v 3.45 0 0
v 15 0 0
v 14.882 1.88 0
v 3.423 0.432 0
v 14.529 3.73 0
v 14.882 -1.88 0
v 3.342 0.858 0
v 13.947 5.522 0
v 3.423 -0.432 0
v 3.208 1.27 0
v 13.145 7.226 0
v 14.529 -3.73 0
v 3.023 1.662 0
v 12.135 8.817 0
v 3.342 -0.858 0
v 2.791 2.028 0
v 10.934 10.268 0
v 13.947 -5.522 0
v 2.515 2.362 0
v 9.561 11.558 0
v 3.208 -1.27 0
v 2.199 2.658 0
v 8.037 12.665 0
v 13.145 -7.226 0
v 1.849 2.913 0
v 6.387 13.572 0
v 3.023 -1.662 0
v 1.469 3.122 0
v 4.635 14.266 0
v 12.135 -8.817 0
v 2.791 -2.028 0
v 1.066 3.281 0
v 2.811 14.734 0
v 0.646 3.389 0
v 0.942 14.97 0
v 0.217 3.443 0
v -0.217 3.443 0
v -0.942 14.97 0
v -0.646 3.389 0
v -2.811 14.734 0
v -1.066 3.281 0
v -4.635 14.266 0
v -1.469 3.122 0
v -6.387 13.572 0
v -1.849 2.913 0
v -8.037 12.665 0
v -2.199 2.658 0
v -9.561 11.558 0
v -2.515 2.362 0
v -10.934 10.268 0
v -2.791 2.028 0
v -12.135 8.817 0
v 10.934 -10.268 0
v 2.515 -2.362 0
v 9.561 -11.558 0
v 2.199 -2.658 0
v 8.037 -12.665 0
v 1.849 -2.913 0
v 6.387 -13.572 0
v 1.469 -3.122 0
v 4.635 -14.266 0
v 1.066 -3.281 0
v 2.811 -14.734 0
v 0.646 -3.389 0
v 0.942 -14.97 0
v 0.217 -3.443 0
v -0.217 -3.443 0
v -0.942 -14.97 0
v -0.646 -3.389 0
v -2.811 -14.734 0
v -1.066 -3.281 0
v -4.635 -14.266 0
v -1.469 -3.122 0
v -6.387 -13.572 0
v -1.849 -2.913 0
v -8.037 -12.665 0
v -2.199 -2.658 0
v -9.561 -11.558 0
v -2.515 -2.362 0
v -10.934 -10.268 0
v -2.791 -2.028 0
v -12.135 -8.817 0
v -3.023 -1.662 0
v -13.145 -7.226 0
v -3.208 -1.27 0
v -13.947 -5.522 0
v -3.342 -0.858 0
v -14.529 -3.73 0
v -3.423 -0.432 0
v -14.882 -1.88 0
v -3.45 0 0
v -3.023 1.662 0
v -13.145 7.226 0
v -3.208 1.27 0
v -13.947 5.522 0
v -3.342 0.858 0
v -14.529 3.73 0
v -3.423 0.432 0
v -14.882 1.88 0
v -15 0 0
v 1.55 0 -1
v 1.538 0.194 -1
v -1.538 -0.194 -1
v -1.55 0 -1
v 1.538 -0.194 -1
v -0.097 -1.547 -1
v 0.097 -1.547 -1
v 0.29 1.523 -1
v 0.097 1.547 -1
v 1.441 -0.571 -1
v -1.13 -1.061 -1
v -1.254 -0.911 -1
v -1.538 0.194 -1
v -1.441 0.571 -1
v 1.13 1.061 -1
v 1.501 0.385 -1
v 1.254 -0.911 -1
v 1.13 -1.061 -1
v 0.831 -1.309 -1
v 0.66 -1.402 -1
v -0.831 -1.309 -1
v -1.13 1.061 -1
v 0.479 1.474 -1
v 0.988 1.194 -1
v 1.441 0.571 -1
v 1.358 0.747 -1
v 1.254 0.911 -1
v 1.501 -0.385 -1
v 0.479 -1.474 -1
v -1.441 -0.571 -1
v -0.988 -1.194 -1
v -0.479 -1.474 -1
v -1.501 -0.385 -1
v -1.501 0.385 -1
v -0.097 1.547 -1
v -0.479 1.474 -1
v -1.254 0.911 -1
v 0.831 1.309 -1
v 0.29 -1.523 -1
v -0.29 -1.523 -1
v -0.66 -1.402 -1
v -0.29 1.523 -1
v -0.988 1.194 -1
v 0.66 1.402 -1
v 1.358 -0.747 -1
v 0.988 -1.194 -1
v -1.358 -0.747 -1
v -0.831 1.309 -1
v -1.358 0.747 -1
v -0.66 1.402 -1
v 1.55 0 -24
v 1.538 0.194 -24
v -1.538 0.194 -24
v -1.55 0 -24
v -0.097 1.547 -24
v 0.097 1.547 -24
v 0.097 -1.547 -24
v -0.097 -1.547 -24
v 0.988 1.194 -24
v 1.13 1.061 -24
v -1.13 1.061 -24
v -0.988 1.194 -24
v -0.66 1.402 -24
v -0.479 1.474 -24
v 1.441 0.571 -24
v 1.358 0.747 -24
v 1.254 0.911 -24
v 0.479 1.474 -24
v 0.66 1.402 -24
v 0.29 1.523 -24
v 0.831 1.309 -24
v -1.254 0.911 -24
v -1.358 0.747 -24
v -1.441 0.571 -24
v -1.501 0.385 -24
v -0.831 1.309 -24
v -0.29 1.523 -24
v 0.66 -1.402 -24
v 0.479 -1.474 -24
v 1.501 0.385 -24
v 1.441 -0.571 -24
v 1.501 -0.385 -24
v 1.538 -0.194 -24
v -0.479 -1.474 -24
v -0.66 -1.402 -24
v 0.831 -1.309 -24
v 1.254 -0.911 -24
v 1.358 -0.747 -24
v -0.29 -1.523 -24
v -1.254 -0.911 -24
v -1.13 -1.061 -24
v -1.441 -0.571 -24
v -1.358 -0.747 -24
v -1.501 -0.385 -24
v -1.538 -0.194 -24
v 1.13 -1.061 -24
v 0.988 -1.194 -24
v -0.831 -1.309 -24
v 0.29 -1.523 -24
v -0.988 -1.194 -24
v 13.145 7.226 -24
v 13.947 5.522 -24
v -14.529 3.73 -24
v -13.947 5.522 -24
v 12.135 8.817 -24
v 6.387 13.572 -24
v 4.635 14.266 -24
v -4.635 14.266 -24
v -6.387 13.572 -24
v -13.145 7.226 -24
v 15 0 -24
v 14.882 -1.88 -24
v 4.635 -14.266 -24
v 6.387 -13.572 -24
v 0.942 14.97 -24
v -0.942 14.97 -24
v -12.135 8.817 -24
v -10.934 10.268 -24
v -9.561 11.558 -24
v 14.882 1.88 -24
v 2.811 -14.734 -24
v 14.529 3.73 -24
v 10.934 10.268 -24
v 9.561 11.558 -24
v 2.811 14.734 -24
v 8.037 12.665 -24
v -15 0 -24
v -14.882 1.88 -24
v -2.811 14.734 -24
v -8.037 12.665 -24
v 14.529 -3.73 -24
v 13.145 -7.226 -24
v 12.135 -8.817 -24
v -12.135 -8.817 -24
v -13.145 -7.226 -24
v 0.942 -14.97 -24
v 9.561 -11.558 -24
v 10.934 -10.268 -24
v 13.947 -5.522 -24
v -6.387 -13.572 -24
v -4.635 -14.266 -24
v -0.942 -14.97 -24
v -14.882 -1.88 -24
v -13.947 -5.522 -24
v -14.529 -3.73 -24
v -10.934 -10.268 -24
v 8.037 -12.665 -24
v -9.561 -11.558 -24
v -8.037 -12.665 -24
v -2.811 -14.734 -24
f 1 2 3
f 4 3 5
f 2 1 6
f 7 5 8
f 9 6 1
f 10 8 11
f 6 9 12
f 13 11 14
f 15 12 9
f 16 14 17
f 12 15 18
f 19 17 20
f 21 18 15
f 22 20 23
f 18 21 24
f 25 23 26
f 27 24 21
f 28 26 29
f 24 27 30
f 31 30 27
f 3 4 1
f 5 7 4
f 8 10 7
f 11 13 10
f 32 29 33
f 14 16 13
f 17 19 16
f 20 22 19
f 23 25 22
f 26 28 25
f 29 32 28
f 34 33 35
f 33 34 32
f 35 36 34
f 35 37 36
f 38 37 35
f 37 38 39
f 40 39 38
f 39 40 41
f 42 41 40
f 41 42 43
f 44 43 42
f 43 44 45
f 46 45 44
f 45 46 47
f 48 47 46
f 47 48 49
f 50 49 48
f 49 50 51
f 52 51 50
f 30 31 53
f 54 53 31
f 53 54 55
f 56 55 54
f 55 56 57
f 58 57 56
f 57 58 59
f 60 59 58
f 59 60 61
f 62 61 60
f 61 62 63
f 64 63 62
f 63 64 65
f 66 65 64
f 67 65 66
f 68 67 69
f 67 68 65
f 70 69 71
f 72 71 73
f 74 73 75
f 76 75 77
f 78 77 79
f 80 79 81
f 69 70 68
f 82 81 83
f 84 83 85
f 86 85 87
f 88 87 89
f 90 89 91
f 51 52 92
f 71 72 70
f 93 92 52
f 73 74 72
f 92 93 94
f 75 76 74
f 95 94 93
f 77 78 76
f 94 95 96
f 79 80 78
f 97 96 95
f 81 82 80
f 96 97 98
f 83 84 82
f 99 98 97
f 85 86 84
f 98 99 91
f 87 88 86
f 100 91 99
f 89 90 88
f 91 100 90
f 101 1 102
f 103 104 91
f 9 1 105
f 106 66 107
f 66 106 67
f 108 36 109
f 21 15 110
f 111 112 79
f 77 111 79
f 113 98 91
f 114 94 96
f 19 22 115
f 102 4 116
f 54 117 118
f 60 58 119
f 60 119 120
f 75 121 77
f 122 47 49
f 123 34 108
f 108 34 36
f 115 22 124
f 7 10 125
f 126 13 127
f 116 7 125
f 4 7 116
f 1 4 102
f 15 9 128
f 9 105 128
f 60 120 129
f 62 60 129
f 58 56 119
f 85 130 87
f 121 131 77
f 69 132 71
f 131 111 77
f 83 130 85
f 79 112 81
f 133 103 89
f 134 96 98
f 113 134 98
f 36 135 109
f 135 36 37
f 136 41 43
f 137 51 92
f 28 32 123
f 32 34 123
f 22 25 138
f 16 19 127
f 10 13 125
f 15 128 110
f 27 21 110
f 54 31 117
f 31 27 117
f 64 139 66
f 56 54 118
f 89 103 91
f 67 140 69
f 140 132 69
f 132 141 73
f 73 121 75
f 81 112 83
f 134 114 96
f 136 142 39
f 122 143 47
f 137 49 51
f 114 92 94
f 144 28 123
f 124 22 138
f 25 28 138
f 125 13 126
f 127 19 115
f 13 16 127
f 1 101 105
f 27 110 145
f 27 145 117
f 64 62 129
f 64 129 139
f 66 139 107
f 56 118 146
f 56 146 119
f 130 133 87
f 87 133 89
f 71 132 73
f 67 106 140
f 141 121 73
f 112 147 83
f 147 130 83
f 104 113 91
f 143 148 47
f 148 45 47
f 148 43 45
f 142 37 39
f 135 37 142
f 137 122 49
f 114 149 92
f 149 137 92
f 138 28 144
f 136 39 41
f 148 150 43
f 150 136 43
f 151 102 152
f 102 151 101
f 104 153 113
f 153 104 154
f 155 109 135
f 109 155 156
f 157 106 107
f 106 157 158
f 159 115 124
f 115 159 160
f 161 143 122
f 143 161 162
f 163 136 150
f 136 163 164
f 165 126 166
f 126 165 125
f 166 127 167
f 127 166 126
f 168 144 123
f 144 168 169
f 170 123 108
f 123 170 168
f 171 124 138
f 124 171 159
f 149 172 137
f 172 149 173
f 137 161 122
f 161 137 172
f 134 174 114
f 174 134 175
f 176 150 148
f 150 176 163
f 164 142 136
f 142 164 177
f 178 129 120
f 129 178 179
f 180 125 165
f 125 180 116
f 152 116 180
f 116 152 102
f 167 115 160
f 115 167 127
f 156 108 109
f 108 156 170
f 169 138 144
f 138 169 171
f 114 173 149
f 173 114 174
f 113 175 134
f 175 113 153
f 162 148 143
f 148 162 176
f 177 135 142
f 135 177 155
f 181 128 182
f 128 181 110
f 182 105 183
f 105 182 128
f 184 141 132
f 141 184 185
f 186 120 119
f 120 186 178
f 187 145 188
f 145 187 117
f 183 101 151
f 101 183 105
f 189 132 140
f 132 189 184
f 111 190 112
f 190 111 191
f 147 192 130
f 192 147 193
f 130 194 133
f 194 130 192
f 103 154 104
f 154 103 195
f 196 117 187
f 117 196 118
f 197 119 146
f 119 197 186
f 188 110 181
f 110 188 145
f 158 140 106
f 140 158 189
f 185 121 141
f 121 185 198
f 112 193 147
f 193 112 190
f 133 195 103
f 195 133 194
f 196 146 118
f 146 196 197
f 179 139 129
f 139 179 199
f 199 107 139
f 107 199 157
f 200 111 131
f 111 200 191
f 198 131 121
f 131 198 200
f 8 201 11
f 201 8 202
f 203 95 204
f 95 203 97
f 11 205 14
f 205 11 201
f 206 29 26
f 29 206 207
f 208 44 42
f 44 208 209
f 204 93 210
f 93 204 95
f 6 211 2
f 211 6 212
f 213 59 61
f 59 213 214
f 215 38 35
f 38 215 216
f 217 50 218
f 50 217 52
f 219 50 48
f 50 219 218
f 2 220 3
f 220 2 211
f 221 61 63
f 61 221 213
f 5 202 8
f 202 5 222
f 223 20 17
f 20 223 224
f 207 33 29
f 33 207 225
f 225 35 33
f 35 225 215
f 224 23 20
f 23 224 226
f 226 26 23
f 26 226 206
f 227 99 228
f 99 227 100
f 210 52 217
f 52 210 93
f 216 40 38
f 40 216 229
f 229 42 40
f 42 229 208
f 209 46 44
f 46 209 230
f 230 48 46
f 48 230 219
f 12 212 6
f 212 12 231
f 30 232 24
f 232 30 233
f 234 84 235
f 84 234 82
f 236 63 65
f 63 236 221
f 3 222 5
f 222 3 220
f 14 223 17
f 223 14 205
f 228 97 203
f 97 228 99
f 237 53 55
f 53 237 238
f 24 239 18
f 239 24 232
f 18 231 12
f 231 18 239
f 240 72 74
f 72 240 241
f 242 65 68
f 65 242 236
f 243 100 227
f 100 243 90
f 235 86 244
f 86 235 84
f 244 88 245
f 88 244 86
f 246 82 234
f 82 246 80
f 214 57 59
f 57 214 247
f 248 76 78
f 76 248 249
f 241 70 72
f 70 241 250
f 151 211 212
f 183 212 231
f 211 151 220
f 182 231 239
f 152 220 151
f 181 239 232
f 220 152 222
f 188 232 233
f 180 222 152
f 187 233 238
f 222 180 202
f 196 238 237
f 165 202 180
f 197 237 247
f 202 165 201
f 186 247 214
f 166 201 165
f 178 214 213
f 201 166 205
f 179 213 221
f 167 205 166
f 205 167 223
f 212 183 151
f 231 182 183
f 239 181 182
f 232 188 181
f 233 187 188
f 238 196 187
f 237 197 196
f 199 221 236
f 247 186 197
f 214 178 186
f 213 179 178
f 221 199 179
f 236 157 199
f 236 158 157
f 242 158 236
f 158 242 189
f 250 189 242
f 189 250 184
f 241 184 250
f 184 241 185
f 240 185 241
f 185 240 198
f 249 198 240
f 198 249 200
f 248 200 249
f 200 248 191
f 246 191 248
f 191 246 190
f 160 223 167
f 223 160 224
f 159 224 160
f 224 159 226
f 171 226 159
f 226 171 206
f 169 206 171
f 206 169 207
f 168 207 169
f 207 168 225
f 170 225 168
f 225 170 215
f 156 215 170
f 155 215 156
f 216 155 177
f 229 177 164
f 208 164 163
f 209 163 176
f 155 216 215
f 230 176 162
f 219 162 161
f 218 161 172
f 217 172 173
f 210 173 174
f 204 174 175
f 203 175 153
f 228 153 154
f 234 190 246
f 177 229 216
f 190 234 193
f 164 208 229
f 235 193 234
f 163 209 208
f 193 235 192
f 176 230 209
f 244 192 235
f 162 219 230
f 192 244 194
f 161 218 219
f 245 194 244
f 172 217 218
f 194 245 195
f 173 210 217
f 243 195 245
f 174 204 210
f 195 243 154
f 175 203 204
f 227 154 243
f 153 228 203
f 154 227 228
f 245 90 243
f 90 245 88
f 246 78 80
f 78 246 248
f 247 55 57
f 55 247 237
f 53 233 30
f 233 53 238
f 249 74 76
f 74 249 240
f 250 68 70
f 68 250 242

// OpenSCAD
$fn = 50;

difference() {
	union() {
		translate(v = [0, 0, -24.0]) {
			cylinder(h = 24, r = 15.0);
		}
	}
	union() {
		translate(v = [0, 0, 0]) {
			rotate(a = [0, 0, 0]) {
				difference() {
					union() {
						translate(v = [0, 0, -27.0]) {
							cylinder(h = 27, r = 1.25);
						}
						translate(v = [0, 0, -1.0]) {
							cylinder(h = 1.0, r1 = 1.55, r2 = 3.45);
						}
						translate(v = [0, 0, -27.0]) {
							cylinder(h = 27, r = 1.55);
						}
						translate(v = [0, 0, -27.0]) {
							cylinder(h = 27, r = 1.25);
						}
					}
					union();
				}
			}
		}
	}
}
